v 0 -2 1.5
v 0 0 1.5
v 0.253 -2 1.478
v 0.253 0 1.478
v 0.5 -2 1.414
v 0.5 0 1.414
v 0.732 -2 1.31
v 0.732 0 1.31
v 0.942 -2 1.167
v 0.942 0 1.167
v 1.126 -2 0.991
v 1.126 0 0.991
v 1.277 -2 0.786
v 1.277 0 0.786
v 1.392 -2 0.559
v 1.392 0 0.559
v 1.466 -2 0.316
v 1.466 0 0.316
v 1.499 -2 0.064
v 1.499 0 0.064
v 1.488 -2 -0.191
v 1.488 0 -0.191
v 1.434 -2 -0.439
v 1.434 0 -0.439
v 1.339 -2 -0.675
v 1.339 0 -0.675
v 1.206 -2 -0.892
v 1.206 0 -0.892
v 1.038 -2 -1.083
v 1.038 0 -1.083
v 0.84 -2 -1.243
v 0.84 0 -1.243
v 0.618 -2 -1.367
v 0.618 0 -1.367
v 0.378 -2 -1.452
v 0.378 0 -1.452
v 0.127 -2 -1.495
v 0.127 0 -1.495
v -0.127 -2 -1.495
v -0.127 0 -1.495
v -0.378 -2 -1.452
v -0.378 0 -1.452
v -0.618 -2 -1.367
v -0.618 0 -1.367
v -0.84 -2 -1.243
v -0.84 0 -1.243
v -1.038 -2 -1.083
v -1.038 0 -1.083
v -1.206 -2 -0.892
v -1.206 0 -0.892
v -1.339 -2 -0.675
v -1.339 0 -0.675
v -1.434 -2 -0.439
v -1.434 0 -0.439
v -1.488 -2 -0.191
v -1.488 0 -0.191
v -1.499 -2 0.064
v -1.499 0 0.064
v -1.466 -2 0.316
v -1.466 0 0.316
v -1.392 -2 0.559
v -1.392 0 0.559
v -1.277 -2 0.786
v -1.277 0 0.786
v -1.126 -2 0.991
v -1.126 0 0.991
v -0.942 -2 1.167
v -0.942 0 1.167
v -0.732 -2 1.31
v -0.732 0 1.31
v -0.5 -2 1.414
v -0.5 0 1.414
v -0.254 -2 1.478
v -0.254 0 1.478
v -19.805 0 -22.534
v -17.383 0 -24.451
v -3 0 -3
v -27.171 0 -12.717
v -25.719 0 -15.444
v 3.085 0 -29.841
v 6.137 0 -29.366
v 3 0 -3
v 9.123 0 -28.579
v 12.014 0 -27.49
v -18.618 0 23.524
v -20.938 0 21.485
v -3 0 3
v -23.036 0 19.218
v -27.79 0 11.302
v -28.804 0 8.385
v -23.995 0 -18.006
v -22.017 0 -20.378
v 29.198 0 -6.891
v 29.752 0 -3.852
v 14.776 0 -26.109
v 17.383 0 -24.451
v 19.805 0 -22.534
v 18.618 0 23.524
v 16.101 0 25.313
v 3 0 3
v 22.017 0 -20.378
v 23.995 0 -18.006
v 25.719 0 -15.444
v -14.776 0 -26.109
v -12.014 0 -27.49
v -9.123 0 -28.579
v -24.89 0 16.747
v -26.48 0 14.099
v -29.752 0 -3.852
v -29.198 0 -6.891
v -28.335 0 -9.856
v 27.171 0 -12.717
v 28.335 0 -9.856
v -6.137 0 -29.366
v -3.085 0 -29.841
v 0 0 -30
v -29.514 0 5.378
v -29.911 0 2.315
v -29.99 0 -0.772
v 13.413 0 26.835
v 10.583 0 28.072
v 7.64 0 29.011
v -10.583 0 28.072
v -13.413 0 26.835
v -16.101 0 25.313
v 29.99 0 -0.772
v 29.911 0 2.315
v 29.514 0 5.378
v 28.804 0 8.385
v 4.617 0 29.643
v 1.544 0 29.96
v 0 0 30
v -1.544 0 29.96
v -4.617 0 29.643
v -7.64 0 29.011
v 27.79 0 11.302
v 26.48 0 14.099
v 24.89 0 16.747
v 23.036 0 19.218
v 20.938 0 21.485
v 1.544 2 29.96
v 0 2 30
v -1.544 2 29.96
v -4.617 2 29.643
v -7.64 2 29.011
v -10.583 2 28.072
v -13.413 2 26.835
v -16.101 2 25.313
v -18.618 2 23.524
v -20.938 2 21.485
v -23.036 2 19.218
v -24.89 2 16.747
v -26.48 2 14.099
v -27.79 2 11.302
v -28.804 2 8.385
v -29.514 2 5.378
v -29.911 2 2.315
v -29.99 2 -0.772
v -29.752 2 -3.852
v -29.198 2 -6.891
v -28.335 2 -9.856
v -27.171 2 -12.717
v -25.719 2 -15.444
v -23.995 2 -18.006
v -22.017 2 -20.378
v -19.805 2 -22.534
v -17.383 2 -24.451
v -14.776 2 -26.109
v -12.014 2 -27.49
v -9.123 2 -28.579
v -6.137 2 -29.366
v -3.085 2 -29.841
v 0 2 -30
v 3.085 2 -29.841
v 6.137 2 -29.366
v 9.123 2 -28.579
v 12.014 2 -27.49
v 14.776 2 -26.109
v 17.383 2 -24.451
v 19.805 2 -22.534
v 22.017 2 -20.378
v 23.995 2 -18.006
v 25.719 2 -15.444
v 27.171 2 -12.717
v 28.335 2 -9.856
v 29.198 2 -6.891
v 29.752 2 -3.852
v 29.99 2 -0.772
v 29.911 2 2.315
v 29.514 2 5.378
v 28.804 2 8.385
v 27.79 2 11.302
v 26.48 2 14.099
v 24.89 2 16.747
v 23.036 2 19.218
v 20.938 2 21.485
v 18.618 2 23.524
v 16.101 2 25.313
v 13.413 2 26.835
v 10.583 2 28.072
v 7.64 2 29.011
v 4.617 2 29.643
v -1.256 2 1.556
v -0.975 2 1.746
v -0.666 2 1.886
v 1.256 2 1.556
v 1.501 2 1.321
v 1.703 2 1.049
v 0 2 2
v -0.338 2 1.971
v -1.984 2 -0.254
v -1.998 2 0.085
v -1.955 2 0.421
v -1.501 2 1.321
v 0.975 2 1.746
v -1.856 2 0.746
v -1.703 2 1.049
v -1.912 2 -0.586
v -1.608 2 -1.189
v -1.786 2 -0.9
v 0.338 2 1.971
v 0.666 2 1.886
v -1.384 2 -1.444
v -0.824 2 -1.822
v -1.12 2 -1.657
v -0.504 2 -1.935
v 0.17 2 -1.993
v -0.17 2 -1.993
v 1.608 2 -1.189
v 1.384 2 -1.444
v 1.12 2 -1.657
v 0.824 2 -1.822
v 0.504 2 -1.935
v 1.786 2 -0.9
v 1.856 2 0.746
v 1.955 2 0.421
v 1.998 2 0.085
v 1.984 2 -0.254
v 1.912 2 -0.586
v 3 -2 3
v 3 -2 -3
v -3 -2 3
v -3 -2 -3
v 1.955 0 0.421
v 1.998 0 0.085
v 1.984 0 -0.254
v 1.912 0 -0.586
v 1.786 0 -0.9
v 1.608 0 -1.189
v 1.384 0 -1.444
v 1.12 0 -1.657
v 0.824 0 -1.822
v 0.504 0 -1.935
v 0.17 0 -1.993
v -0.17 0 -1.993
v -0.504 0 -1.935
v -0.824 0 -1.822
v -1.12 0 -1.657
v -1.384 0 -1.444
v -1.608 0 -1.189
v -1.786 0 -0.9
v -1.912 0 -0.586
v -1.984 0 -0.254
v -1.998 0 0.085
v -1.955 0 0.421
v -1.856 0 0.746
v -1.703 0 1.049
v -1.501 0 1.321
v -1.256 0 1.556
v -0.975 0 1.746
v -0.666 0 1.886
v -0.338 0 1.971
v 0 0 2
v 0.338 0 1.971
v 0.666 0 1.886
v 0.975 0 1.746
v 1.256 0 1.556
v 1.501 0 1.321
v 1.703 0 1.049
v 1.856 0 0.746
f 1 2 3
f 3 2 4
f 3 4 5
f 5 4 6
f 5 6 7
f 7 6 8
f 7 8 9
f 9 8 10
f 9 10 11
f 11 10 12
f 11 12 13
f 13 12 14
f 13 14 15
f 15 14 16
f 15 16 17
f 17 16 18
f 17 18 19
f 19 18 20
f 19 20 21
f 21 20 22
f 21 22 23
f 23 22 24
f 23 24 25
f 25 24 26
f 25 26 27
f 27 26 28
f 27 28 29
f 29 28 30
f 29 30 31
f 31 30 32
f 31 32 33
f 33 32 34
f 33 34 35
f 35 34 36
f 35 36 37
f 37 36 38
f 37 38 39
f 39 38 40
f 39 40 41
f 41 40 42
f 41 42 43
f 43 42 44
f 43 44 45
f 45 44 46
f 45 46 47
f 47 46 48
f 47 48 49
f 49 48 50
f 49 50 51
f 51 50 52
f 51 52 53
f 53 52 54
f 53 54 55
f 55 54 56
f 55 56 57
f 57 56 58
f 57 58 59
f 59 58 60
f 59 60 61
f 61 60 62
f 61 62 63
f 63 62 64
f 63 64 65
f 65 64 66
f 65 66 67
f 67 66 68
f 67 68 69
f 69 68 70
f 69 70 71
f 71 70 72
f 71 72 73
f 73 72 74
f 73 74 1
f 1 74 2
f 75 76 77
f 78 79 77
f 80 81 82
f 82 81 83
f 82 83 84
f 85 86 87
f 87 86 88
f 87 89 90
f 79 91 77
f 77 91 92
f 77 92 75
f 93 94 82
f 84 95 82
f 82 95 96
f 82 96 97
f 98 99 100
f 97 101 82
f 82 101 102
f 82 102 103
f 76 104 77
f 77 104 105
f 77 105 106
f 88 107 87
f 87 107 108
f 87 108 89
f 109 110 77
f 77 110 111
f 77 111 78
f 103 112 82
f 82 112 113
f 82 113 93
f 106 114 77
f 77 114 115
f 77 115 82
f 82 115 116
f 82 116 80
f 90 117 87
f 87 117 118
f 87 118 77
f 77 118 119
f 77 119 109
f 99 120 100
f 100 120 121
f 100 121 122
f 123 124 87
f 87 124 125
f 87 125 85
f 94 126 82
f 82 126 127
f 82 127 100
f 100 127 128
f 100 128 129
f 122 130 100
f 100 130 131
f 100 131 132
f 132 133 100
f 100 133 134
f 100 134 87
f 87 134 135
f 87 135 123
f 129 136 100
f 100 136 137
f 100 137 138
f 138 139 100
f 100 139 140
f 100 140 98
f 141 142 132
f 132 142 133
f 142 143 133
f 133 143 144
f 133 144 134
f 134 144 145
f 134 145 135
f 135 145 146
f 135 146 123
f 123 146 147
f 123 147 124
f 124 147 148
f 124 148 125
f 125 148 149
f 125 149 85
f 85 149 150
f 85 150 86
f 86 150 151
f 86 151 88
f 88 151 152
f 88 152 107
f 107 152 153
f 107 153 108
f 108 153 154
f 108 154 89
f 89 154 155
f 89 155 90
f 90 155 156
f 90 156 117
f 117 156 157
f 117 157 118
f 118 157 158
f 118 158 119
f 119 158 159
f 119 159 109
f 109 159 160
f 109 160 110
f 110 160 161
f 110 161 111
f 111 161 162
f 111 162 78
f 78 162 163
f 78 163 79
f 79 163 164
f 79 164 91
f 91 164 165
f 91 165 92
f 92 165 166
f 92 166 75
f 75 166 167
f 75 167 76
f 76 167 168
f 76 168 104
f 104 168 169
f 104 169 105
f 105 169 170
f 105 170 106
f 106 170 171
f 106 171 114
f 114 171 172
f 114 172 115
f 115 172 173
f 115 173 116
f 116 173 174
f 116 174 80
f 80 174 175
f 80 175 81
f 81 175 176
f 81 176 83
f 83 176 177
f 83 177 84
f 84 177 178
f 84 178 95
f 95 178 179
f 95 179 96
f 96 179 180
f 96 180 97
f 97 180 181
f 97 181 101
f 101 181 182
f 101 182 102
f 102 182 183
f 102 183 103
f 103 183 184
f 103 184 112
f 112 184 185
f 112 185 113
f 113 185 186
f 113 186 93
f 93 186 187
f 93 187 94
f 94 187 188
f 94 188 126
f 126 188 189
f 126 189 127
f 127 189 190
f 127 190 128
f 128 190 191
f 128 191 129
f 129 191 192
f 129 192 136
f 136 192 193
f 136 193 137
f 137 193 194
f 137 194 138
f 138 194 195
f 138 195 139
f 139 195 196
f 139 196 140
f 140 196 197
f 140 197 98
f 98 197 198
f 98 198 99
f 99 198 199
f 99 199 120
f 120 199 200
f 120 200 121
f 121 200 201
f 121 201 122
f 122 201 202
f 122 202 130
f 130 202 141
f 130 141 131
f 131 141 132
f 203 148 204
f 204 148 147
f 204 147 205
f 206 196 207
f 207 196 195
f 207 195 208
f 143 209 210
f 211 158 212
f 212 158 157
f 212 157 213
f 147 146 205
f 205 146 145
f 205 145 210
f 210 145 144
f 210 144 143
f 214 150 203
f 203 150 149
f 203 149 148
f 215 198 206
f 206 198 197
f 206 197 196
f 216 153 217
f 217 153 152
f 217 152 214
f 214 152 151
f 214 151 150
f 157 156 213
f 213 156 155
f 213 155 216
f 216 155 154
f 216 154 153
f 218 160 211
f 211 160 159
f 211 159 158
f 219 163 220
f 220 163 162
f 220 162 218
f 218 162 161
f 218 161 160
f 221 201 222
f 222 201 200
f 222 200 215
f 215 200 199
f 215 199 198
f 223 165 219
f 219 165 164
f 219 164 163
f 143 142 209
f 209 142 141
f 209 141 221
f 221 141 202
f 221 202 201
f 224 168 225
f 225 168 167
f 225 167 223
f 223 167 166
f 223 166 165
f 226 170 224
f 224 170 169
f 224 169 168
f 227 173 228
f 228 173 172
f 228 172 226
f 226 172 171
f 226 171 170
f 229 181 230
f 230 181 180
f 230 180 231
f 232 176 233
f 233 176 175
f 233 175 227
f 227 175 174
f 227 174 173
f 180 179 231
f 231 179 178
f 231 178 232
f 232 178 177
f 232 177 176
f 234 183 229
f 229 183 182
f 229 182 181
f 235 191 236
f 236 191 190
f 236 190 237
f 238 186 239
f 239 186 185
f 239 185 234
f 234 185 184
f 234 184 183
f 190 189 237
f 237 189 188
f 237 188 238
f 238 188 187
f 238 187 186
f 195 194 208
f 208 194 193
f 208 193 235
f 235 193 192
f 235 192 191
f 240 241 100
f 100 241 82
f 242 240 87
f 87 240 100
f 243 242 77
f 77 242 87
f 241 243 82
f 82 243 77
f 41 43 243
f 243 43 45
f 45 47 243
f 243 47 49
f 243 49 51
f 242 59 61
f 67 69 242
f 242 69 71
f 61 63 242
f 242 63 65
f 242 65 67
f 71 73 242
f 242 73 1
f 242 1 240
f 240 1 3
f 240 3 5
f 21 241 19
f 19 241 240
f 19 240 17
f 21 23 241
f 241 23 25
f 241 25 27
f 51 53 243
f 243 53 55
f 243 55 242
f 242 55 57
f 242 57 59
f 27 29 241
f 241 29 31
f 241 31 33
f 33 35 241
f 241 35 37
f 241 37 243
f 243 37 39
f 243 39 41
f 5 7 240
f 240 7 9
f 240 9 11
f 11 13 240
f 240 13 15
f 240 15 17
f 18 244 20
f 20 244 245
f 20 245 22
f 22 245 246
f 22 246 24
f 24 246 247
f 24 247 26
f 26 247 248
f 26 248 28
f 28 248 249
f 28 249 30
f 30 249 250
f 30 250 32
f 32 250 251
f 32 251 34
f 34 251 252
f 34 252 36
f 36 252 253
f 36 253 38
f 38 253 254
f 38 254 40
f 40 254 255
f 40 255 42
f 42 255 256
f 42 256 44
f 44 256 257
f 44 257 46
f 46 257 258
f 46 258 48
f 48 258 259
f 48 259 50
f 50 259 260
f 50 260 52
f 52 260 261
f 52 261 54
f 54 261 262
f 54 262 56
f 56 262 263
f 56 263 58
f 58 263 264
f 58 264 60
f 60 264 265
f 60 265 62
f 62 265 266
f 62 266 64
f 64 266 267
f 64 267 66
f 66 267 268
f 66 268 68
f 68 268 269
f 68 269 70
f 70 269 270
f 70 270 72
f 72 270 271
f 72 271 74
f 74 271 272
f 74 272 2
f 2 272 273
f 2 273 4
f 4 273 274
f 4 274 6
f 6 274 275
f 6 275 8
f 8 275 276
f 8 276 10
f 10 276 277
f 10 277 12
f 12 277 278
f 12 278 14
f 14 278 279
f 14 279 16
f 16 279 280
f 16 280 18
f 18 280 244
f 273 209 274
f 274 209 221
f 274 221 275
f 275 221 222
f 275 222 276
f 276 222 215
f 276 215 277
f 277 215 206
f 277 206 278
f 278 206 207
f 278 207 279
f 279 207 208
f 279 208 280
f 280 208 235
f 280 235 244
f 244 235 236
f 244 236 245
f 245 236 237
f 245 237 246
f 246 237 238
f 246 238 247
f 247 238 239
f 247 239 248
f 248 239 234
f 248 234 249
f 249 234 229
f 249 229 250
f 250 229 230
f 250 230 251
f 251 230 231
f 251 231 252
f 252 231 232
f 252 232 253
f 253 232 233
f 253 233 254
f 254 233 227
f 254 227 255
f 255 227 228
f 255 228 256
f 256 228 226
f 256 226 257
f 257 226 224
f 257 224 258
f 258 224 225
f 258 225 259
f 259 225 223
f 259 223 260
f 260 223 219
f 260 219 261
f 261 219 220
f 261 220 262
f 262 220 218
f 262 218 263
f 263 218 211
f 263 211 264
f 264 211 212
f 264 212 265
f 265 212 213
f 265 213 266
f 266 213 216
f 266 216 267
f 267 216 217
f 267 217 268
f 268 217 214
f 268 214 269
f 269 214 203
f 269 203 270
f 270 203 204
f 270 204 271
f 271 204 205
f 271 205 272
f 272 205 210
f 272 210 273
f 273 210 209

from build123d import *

# Parameters (mm, degrees)
SKETCH_1_R               = 30
EXTRUDE_1_DEPTH          = 2
SKETCH_2_W               = 6
SKETCH_2_H               = 6
EXTRUDE_2_DEPTH          = 2
CUT_EXTRUDE_1_DEPTH      = 43.473521163
CUT_EXTRUDE_1_DEPTH_BACK = 43.473521163
SKETCH_1_10_R            = 1.5
CUT_EXTRUDE_START        = 2
SKETCH_1_11_R            = 2
CUT_EXTRUDE_2_DEPTH      = 2


with BuildPart() as part:
    # 草图1 → 凸台-拉伸1 (new body)
    with BuildSketch(Plane(origin=(0, 0, 0), x_dir=(1, 0, 0), z_dir=(0, 1, 0))):
        with Locations(Location((0, 0, 0), (0, 0, 270))):
            Circle(SKETCH_1_R)
    extrude(amount=EXTRUDE_1_DEPTH)

    # 草图2 → 凸台-拉伸2 (add)
    with BuildSketch(Plane.XZ):
        Rectangle(SKETCH_2_W, SKETCH_2_H)
    extrude(amount=EXTRUDE_2_DEPTH)

    # 草图1<10> → 切除-拉伸1 (cut, two sides: drawn at the far end of the back side and taken through both)
    with BuildSketch(Plane(origin=(0, 0, 0), x_dir=(1, 0, 0), z_dir=(0, 1, 0)).offset(-CUT_EXTRUDE_1_DEPTH_BACK)):
        with Locations(Location((0, 0, 0), (0, 0, 270))):
            Circle(SKETCH_1_10_R)
    extrude(amount=CUT_EXTRUDE_1_DEPTH + CUT_EXTRUDE_1_DEPTH_BACK, mode=Mode.SUBTRACT)

    # 草图1<11> → 切除-拉伸2 (cut)
    with BuildSketch(Plane(origin=(0, 0, 0), x_dir=(1, 0, 0), z_dir=(0, 1, 0)).offset(CUT_EXTRUDE_START)):
        with Locations(Location((0, 0, 0), (0, 0, 270))):
            Circle(SKETCH_1_11_R)
    extrude(amount=-CUT_EXTRUDE_2_DEPTH, mode=Mode.SUBTRACT)


solid = part.part
